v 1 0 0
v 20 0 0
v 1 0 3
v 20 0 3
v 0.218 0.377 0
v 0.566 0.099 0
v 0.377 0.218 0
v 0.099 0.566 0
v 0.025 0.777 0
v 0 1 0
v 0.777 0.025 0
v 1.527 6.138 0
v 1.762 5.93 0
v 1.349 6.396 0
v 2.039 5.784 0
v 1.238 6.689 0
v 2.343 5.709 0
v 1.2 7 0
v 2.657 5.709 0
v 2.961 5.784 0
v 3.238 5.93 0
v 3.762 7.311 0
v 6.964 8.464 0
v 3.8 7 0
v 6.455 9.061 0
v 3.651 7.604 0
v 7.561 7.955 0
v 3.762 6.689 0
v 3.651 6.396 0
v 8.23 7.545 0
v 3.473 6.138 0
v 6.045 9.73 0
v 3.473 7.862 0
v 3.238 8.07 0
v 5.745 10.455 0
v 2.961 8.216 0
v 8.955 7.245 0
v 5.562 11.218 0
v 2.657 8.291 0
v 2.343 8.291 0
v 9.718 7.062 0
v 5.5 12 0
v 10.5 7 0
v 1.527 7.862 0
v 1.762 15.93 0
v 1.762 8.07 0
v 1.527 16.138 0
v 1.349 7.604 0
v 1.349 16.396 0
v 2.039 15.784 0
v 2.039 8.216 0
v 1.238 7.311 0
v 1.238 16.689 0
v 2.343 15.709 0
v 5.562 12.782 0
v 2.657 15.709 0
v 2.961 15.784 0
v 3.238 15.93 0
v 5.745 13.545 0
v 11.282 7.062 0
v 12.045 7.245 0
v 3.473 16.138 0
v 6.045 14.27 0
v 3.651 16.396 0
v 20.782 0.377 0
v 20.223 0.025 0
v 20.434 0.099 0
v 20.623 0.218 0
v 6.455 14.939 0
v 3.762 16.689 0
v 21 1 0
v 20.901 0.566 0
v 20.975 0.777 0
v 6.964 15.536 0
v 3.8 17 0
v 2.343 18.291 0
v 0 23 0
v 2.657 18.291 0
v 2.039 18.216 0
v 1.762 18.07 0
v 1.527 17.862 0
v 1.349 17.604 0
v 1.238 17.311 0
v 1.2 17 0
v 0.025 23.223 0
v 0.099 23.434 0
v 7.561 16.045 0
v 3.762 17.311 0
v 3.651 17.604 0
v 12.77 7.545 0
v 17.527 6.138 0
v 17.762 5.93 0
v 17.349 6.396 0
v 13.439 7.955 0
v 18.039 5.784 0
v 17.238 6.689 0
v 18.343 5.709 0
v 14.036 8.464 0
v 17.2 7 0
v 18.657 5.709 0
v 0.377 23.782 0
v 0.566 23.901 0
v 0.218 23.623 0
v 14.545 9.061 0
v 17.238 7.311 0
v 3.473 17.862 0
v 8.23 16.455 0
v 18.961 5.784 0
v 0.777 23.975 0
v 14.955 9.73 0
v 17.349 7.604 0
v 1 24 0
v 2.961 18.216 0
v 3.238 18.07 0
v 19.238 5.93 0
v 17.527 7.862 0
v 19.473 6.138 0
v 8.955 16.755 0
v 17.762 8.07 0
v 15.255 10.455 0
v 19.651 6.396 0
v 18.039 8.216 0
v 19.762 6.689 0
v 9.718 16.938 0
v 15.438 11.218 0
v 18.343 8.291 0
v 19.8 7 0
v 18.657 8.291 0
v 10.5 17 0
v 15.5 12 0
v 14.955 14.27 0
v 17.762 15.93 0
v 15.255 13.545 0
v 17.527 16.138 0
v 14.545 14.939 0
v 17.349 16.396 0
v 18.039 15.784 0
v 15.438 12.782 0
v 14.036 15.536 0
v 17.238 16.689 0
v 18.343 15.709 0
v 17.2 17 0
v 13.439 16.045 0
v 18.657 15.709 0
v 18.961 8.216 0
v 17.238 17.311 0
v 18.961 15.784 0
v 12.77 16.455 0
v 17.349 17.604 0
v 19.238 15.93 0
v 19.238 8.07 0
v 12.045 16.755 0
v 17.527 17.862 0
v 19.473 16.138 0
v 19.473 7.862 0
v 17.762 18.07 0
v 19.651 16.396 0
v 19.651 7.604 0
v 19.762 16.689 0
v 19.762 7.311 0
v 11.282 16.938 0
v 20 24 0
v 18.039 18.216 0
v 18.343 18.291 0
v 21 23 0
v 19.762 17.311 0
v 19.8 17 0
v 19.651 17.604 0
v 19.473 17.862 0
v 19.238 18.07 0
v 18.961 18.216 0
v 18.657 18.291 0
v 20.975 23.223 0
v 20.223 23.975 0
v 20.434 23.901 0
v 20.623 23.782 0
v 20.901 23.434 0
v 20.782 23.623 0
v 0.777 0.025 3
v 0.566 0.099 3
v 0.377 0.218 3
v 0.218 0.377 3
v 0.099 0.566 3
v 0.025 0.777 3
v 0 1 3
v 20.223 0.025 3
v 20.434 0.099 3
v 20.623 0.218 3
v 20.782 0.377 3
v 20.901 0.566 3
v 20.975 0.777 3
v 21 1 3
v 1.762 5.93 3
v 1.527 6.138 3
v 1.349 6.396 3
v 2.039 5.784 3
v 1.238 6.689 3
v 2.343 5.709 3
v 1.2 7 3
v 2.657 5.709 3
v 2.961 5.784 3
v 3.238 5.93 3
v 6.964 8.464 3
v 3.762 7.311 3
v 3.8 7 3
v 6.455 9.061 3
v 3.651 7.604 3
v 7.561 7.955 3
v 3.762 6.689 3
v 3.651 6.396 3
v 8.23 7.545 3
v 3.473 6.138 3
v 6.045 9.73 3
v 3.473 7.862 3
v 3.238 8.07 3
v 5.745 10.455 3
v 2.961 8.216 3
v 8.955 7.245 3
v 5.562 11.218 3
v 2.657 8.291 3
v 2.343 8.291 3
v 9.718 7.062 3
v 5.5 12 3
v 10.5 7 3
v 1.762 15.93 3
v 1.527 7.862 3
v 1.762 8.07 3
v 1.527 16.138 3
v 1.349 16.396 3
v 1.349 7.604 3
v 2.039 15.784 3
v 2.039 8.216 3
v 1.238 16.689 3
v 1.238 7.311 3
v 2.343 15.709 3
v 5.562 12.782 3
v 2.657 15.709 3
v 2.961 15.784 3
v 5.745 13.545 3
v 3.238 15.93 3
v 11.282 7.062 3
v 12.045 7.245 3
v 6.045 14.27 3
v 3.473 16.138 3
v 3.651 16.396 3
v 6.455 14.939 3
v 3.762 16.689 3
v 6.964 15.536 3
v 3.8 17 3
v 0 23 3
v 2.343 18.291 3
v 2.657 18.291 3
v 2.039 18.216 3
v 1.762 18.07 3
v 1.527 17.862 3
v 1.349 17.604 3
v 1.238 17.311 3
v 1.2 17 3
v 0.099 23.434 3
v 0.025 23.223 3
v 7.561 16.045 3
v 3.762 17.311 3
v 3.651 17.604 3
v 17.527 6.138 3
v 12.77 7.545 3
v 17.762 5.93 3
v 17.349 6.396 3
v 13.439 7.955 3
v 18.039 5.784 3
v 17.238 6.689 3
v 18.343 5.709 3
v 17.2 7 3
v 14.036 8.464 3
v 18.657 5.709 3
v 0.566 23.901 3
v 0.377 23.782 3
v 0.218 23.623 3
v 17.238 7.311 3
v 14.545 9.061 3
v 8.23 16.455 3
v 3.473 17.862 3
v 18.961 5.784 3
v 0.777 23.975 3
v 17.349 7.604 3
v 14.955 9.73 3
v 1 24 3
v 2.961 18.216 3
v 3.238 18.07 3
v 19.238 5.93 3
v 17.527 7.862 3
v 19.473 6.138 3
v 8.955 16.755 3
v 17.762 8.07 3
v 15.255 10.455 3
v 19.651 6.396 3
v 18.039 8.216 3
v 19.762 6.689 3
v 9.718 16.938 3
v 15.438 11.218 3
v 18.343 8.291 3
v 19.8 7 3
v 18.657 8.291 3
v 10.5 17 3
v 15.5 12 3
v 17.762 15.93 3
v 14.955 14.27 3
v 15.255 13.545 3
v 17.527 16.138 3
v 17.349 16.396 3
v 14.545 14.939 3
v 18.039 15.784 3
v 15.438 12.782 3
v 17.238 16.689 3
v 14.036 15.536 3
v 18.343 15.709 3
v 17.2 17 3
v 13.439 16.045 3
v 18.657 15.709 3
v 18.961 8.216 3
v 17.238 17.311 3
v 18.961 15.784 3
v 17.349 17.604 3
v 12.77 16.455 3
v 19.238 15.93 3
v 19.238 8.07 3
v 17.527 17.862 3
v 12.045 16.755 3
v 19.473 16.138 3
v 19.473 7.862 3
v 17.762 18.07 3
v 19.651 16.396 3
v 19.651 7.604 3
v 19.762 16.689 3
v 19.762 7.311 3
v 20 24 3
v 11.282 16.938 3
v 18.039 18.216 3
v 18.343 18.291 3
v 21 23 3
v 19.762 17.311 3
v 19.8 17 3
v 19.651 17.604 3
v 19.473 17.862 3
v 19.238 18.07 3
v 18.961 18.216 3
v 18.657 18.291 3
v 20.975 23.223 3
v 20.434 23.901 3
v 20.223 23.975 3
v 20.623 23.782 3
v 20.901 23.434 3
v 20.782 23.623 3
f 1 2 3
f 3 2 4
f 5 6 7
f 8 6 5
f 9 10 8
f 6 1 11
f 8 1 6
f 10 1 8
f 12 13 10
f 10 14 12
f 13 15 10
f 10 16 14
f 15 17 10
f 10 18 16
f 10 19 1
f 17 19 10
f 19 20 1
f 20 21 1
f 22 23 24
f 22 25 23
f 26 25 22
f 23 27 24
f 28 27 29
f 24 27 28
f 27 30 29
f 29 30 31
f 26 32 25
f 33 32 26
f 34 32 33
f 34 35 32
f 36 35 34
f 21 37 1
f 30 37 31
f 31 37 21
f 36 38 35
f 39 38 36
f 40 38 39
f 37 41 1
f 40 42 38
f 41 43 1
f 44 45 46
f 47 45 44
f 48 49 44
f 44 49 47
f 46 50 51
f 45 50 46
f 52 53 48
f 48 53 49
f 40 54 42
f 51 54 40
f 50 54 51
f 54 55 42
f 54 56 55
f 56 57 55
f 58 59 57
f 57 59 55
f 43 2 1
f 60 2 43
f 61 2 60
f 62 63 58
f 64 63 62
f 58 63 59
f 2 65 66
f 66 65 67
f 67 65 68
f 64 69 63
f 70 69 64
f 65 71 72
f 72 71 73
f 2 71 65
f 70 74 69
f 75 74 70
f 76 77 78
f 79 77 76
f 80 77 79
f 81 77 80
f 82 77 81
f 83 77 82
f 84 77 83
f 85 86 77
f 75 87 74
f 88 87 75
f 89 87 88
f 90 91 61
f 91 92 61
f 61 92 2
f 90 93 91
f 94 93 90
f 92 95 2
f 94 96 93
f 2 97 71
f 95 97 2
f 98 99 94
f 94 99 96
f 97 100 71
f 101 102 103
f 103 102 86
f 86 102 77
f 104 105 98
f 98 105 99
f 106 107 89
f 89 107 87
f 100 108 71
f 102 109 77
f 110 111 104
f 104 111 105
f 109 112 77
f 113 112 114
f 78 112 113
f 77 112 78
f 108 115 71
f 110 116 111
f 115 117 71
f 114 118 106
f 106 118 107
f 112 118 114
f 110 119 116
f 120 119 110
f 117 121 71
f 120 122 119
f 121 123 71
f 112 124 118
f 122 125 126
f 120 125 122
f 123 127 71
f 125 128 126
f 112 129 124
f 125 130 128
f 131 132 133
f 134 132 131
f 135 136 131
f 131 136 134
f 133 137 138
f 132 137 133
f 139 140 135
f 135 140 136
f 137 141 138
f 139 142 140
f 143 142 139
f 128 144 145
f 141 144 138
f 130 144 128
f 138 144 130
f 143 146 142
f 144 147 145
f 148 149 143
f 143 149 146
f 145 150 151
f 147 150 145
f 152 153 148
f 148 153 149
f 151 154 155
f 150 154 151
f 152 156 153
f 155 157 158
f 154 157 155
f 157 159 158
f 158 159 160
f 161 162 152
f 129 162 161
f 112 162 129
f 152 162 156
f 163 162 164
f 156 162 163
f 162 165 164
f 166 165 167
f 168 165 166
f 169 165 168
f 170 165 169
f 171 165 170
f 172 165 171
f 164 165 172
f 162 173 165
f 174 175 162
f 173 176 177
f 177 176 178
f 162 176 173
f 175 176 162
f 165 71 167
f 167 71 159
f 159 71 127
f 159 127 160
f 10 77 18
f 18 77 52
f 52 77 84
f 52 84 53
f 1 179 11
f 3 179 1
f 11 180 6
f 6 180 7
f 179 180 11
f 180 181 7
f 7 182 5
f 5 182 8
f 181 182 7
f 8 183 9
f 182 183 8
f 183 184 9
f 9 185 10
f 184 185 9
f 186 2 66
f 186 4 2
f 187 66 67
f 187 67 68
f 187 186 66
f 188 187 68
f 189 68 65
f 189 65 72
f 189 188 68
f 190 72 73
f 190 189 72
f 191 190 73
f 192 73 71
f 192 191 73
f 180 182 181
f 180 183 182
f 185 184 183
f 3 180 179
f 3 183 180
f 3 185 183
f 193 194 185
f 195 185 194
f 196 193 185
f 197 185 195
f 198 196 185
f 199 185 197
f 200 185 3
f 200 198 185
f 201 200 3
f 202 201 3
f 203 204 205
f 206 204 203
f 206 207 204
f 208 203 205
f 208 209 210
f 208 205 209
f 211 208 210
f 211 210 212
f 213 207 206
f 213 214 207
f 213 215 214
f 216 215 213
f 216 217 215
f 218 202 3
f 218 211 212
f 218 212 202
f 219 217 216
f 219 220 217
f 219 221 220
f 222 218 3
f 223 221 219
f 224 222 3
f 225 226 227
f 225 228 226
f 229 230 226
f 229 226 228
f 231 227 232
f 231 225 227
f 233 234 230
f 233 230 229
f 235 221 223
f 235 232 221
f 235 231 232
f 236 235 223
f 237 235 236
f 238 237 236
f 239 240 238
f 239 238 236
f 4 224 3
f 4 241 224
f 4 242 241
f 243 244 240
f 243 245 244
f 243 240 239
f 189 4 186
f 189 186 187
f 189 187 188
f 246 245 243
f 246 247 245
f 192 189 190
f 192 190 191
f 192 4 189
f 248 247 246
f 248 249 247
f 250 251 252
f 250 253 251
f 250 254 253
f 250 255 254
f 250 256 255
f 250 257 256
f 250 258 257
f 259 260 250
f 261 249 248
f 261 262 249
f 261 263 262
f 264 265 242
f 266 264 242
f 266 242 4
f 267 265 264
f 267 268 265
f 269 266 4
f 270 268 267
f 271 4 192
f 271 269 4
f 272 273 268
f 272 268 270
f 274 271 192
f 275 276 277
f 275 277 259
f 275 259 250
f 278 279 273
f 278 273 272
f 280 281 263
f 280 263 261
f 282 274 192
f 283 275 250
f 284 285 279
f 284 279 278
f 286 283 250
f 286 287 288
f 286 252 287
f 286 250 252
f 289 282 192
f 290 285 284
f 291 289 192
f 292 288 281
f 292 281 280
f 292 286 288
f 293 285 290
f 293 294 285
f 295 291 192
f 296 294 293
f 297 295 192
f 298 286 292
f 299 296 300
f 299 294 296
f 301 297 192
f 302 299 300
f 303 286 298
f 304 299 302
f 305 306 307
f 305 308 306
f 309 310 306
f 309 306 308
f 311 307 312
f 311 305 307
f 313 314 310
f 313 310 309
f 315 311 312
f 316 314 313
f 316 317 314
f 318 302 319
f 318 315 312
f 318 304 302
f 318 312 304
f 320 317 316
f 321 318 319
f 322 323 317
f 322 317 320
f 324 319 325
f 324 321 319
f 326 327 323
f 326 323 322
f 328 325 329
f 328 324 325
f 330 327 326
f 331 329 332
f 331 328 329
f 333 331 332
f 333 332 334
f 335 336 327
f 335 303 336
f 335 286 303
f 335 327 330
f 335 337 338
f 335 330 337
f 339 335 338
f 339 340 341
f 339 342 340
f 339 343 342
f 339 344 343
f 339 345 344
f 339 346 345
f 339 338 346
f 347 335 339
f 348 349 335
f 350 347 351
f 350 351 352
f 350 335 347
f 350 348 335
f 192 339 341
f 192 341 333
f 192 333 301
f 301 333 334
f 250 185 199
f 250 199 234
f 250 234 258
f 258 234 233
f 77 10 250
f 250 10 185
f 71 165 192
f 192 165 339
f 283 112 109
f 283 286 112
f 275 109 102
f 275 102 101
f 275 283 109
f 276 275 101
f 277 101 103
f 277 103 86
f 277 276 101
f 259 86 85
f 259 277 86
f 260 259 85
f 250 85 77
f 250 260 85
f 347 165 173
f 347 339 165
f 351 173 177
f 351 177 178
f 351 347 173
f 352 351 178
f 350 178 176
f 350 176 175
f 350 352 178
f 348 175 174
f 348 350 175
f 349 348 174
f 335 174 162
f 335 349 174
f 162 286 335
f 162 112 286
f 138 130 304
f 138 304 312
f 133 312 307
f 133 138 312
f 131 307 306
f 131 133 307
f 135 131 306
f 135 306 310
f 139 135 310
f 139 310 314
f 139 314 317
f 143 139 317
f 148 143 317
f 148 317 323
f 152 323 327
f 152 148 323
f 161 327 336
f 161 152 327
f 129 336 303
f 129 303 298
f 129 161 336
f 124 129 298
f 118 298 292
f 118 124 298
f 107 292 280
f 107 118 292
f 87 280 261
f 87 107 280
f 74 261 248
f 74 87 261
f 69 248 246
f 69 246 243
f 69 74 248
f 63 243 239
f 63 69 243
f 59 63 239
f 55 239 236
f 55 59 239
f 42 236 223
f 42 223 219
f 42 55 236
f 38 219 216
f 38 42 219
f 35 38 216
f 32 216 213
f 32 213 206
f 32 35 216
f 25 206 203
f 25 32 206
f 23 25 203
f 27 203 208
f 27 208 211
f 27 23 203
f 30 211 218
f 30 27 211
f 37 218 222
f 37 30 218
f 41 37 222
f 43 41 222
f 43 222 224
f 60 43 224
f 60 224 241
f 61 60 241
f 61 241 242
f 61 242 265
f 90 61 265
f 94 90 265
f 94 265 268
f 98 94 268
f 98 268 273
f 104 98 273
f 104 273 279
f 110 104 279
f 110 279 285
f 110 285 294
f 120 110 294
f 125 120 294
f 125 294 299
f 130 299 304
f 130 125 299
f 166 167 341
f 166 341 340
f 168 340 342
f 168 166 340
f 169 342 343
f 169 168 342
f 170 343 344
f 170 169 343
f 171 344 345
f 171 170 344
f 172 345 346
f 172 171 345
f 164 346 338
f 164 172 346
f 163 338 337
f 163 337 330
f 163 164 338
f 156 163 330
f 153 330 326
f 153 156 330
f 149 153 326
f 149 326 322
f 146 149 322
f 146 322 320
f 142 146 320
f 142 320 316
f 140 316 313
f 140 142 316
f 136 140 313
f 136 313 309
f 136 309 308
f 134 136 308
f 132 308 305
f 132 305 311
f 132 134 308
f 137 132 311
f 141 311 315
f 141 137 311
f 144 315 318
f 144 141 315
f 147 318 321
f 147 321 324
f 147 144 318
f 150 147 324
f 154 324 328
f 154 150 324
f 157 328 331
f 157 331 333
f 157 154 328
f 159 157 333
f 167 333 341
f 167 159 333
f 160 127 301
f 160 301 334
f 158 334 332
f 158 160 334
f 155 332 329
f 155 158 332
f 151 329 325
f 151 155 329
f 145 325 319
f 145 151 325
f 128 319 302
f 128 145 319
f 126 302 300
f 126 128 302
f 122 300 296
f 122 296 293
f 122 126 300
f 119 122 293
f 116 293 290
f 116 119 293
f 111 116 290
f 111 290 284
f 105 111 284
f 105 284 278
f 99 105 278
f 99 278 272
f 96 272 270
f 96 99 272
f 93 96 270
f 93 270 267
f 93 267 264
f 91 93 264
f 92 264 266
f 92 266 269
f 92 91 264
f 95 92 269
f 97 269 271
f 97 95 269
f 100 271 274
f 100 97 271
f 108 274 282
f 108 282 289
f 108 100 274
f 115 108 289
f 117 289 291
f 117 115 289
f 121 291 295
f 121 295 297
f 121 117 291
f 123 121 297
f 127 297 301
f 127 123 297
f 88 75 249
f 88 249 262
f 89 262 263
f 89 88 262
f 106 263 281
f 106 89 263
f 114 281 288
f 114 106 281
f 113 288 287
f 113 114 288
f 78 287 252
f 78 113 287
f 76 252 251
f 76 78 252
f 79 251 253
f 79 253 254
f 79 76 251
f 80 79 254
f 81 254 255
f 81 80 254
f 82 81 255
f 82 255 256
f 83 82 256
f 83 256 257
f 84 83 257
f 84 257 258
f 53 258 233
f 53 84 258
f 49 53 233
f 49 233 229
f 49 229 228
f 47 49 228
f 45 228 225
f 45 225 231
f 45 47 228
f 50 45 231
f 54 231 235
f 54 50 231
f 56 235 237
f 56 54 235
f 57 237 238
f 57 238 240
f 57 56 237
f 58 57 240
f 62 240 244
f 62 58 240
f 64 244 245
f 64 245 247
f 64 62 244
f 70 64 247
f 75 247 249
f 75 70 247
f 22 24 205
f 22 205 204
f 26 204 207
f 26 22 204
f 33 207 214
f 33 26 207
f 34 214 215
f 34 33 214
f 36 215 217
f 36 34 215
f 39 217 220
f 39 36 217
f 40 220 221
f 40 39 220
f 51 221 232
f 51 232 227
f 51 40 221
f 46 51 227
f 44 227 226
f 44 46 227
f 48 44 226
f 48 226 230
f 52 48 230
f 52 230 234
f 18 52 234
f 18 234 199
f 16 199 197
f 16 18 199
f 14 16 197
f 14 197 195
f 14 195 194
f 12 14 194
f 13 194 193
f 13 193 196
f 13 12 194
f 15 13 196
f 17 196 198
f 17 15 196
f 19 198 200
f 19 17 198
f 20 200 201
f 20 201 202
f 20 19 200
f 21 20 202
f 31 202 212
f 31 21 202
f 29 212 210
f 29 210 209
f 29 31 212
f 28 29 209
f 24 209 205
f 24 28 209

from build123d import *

# Parameters (mm, degrees)
SKETCH_W   = 21
SKETCH_H   = 24
SKETCH_R   = 1.3
SKETCH_R_2 = 5
PAD_DEPTH  = 3
FILLET_R   = 1


with BuildPart() as part:
    # Sketch → Pad (new body)
    with BuildSketch(Plane.XY):
        with Locations((10.5, 12)):
            Rectangle(SKETCH_W, SKETCH_H)
        with Locations((2.5, 17)):
            Circle(SKETCH_R, mode=Mode.SUBTRACT)
        with Locations((18.5, 17)):
            Circle(SKETCH_R, mode=Mode.SUBTRACT)
        with Locations((2.5, 7)):
            Circle(SKETCH_R, mode=Mode.SUBTRACT)
        with Locations((18.5, 7)):
            Circle(SKETCH_R, mode=Mode.SUBTRACT)
        with Locations((10.5, 12)):
            Circle(SKETCH_R_2, mode=Mode.SUBTRACT)
    extrude(amount=PAD_DEPTH)

    # Fillet
    fillet_edges = [part.edges().sort_by_distance(p)[0] for p in [
        (0, 0, 1.5),
        (21, 0, 1.5),
        (21, 24, 1.5),
        (0, 24, 1.5),
    ]]
    fillet(fillet_edges, radius=FILLET_R)


solid = part.part
